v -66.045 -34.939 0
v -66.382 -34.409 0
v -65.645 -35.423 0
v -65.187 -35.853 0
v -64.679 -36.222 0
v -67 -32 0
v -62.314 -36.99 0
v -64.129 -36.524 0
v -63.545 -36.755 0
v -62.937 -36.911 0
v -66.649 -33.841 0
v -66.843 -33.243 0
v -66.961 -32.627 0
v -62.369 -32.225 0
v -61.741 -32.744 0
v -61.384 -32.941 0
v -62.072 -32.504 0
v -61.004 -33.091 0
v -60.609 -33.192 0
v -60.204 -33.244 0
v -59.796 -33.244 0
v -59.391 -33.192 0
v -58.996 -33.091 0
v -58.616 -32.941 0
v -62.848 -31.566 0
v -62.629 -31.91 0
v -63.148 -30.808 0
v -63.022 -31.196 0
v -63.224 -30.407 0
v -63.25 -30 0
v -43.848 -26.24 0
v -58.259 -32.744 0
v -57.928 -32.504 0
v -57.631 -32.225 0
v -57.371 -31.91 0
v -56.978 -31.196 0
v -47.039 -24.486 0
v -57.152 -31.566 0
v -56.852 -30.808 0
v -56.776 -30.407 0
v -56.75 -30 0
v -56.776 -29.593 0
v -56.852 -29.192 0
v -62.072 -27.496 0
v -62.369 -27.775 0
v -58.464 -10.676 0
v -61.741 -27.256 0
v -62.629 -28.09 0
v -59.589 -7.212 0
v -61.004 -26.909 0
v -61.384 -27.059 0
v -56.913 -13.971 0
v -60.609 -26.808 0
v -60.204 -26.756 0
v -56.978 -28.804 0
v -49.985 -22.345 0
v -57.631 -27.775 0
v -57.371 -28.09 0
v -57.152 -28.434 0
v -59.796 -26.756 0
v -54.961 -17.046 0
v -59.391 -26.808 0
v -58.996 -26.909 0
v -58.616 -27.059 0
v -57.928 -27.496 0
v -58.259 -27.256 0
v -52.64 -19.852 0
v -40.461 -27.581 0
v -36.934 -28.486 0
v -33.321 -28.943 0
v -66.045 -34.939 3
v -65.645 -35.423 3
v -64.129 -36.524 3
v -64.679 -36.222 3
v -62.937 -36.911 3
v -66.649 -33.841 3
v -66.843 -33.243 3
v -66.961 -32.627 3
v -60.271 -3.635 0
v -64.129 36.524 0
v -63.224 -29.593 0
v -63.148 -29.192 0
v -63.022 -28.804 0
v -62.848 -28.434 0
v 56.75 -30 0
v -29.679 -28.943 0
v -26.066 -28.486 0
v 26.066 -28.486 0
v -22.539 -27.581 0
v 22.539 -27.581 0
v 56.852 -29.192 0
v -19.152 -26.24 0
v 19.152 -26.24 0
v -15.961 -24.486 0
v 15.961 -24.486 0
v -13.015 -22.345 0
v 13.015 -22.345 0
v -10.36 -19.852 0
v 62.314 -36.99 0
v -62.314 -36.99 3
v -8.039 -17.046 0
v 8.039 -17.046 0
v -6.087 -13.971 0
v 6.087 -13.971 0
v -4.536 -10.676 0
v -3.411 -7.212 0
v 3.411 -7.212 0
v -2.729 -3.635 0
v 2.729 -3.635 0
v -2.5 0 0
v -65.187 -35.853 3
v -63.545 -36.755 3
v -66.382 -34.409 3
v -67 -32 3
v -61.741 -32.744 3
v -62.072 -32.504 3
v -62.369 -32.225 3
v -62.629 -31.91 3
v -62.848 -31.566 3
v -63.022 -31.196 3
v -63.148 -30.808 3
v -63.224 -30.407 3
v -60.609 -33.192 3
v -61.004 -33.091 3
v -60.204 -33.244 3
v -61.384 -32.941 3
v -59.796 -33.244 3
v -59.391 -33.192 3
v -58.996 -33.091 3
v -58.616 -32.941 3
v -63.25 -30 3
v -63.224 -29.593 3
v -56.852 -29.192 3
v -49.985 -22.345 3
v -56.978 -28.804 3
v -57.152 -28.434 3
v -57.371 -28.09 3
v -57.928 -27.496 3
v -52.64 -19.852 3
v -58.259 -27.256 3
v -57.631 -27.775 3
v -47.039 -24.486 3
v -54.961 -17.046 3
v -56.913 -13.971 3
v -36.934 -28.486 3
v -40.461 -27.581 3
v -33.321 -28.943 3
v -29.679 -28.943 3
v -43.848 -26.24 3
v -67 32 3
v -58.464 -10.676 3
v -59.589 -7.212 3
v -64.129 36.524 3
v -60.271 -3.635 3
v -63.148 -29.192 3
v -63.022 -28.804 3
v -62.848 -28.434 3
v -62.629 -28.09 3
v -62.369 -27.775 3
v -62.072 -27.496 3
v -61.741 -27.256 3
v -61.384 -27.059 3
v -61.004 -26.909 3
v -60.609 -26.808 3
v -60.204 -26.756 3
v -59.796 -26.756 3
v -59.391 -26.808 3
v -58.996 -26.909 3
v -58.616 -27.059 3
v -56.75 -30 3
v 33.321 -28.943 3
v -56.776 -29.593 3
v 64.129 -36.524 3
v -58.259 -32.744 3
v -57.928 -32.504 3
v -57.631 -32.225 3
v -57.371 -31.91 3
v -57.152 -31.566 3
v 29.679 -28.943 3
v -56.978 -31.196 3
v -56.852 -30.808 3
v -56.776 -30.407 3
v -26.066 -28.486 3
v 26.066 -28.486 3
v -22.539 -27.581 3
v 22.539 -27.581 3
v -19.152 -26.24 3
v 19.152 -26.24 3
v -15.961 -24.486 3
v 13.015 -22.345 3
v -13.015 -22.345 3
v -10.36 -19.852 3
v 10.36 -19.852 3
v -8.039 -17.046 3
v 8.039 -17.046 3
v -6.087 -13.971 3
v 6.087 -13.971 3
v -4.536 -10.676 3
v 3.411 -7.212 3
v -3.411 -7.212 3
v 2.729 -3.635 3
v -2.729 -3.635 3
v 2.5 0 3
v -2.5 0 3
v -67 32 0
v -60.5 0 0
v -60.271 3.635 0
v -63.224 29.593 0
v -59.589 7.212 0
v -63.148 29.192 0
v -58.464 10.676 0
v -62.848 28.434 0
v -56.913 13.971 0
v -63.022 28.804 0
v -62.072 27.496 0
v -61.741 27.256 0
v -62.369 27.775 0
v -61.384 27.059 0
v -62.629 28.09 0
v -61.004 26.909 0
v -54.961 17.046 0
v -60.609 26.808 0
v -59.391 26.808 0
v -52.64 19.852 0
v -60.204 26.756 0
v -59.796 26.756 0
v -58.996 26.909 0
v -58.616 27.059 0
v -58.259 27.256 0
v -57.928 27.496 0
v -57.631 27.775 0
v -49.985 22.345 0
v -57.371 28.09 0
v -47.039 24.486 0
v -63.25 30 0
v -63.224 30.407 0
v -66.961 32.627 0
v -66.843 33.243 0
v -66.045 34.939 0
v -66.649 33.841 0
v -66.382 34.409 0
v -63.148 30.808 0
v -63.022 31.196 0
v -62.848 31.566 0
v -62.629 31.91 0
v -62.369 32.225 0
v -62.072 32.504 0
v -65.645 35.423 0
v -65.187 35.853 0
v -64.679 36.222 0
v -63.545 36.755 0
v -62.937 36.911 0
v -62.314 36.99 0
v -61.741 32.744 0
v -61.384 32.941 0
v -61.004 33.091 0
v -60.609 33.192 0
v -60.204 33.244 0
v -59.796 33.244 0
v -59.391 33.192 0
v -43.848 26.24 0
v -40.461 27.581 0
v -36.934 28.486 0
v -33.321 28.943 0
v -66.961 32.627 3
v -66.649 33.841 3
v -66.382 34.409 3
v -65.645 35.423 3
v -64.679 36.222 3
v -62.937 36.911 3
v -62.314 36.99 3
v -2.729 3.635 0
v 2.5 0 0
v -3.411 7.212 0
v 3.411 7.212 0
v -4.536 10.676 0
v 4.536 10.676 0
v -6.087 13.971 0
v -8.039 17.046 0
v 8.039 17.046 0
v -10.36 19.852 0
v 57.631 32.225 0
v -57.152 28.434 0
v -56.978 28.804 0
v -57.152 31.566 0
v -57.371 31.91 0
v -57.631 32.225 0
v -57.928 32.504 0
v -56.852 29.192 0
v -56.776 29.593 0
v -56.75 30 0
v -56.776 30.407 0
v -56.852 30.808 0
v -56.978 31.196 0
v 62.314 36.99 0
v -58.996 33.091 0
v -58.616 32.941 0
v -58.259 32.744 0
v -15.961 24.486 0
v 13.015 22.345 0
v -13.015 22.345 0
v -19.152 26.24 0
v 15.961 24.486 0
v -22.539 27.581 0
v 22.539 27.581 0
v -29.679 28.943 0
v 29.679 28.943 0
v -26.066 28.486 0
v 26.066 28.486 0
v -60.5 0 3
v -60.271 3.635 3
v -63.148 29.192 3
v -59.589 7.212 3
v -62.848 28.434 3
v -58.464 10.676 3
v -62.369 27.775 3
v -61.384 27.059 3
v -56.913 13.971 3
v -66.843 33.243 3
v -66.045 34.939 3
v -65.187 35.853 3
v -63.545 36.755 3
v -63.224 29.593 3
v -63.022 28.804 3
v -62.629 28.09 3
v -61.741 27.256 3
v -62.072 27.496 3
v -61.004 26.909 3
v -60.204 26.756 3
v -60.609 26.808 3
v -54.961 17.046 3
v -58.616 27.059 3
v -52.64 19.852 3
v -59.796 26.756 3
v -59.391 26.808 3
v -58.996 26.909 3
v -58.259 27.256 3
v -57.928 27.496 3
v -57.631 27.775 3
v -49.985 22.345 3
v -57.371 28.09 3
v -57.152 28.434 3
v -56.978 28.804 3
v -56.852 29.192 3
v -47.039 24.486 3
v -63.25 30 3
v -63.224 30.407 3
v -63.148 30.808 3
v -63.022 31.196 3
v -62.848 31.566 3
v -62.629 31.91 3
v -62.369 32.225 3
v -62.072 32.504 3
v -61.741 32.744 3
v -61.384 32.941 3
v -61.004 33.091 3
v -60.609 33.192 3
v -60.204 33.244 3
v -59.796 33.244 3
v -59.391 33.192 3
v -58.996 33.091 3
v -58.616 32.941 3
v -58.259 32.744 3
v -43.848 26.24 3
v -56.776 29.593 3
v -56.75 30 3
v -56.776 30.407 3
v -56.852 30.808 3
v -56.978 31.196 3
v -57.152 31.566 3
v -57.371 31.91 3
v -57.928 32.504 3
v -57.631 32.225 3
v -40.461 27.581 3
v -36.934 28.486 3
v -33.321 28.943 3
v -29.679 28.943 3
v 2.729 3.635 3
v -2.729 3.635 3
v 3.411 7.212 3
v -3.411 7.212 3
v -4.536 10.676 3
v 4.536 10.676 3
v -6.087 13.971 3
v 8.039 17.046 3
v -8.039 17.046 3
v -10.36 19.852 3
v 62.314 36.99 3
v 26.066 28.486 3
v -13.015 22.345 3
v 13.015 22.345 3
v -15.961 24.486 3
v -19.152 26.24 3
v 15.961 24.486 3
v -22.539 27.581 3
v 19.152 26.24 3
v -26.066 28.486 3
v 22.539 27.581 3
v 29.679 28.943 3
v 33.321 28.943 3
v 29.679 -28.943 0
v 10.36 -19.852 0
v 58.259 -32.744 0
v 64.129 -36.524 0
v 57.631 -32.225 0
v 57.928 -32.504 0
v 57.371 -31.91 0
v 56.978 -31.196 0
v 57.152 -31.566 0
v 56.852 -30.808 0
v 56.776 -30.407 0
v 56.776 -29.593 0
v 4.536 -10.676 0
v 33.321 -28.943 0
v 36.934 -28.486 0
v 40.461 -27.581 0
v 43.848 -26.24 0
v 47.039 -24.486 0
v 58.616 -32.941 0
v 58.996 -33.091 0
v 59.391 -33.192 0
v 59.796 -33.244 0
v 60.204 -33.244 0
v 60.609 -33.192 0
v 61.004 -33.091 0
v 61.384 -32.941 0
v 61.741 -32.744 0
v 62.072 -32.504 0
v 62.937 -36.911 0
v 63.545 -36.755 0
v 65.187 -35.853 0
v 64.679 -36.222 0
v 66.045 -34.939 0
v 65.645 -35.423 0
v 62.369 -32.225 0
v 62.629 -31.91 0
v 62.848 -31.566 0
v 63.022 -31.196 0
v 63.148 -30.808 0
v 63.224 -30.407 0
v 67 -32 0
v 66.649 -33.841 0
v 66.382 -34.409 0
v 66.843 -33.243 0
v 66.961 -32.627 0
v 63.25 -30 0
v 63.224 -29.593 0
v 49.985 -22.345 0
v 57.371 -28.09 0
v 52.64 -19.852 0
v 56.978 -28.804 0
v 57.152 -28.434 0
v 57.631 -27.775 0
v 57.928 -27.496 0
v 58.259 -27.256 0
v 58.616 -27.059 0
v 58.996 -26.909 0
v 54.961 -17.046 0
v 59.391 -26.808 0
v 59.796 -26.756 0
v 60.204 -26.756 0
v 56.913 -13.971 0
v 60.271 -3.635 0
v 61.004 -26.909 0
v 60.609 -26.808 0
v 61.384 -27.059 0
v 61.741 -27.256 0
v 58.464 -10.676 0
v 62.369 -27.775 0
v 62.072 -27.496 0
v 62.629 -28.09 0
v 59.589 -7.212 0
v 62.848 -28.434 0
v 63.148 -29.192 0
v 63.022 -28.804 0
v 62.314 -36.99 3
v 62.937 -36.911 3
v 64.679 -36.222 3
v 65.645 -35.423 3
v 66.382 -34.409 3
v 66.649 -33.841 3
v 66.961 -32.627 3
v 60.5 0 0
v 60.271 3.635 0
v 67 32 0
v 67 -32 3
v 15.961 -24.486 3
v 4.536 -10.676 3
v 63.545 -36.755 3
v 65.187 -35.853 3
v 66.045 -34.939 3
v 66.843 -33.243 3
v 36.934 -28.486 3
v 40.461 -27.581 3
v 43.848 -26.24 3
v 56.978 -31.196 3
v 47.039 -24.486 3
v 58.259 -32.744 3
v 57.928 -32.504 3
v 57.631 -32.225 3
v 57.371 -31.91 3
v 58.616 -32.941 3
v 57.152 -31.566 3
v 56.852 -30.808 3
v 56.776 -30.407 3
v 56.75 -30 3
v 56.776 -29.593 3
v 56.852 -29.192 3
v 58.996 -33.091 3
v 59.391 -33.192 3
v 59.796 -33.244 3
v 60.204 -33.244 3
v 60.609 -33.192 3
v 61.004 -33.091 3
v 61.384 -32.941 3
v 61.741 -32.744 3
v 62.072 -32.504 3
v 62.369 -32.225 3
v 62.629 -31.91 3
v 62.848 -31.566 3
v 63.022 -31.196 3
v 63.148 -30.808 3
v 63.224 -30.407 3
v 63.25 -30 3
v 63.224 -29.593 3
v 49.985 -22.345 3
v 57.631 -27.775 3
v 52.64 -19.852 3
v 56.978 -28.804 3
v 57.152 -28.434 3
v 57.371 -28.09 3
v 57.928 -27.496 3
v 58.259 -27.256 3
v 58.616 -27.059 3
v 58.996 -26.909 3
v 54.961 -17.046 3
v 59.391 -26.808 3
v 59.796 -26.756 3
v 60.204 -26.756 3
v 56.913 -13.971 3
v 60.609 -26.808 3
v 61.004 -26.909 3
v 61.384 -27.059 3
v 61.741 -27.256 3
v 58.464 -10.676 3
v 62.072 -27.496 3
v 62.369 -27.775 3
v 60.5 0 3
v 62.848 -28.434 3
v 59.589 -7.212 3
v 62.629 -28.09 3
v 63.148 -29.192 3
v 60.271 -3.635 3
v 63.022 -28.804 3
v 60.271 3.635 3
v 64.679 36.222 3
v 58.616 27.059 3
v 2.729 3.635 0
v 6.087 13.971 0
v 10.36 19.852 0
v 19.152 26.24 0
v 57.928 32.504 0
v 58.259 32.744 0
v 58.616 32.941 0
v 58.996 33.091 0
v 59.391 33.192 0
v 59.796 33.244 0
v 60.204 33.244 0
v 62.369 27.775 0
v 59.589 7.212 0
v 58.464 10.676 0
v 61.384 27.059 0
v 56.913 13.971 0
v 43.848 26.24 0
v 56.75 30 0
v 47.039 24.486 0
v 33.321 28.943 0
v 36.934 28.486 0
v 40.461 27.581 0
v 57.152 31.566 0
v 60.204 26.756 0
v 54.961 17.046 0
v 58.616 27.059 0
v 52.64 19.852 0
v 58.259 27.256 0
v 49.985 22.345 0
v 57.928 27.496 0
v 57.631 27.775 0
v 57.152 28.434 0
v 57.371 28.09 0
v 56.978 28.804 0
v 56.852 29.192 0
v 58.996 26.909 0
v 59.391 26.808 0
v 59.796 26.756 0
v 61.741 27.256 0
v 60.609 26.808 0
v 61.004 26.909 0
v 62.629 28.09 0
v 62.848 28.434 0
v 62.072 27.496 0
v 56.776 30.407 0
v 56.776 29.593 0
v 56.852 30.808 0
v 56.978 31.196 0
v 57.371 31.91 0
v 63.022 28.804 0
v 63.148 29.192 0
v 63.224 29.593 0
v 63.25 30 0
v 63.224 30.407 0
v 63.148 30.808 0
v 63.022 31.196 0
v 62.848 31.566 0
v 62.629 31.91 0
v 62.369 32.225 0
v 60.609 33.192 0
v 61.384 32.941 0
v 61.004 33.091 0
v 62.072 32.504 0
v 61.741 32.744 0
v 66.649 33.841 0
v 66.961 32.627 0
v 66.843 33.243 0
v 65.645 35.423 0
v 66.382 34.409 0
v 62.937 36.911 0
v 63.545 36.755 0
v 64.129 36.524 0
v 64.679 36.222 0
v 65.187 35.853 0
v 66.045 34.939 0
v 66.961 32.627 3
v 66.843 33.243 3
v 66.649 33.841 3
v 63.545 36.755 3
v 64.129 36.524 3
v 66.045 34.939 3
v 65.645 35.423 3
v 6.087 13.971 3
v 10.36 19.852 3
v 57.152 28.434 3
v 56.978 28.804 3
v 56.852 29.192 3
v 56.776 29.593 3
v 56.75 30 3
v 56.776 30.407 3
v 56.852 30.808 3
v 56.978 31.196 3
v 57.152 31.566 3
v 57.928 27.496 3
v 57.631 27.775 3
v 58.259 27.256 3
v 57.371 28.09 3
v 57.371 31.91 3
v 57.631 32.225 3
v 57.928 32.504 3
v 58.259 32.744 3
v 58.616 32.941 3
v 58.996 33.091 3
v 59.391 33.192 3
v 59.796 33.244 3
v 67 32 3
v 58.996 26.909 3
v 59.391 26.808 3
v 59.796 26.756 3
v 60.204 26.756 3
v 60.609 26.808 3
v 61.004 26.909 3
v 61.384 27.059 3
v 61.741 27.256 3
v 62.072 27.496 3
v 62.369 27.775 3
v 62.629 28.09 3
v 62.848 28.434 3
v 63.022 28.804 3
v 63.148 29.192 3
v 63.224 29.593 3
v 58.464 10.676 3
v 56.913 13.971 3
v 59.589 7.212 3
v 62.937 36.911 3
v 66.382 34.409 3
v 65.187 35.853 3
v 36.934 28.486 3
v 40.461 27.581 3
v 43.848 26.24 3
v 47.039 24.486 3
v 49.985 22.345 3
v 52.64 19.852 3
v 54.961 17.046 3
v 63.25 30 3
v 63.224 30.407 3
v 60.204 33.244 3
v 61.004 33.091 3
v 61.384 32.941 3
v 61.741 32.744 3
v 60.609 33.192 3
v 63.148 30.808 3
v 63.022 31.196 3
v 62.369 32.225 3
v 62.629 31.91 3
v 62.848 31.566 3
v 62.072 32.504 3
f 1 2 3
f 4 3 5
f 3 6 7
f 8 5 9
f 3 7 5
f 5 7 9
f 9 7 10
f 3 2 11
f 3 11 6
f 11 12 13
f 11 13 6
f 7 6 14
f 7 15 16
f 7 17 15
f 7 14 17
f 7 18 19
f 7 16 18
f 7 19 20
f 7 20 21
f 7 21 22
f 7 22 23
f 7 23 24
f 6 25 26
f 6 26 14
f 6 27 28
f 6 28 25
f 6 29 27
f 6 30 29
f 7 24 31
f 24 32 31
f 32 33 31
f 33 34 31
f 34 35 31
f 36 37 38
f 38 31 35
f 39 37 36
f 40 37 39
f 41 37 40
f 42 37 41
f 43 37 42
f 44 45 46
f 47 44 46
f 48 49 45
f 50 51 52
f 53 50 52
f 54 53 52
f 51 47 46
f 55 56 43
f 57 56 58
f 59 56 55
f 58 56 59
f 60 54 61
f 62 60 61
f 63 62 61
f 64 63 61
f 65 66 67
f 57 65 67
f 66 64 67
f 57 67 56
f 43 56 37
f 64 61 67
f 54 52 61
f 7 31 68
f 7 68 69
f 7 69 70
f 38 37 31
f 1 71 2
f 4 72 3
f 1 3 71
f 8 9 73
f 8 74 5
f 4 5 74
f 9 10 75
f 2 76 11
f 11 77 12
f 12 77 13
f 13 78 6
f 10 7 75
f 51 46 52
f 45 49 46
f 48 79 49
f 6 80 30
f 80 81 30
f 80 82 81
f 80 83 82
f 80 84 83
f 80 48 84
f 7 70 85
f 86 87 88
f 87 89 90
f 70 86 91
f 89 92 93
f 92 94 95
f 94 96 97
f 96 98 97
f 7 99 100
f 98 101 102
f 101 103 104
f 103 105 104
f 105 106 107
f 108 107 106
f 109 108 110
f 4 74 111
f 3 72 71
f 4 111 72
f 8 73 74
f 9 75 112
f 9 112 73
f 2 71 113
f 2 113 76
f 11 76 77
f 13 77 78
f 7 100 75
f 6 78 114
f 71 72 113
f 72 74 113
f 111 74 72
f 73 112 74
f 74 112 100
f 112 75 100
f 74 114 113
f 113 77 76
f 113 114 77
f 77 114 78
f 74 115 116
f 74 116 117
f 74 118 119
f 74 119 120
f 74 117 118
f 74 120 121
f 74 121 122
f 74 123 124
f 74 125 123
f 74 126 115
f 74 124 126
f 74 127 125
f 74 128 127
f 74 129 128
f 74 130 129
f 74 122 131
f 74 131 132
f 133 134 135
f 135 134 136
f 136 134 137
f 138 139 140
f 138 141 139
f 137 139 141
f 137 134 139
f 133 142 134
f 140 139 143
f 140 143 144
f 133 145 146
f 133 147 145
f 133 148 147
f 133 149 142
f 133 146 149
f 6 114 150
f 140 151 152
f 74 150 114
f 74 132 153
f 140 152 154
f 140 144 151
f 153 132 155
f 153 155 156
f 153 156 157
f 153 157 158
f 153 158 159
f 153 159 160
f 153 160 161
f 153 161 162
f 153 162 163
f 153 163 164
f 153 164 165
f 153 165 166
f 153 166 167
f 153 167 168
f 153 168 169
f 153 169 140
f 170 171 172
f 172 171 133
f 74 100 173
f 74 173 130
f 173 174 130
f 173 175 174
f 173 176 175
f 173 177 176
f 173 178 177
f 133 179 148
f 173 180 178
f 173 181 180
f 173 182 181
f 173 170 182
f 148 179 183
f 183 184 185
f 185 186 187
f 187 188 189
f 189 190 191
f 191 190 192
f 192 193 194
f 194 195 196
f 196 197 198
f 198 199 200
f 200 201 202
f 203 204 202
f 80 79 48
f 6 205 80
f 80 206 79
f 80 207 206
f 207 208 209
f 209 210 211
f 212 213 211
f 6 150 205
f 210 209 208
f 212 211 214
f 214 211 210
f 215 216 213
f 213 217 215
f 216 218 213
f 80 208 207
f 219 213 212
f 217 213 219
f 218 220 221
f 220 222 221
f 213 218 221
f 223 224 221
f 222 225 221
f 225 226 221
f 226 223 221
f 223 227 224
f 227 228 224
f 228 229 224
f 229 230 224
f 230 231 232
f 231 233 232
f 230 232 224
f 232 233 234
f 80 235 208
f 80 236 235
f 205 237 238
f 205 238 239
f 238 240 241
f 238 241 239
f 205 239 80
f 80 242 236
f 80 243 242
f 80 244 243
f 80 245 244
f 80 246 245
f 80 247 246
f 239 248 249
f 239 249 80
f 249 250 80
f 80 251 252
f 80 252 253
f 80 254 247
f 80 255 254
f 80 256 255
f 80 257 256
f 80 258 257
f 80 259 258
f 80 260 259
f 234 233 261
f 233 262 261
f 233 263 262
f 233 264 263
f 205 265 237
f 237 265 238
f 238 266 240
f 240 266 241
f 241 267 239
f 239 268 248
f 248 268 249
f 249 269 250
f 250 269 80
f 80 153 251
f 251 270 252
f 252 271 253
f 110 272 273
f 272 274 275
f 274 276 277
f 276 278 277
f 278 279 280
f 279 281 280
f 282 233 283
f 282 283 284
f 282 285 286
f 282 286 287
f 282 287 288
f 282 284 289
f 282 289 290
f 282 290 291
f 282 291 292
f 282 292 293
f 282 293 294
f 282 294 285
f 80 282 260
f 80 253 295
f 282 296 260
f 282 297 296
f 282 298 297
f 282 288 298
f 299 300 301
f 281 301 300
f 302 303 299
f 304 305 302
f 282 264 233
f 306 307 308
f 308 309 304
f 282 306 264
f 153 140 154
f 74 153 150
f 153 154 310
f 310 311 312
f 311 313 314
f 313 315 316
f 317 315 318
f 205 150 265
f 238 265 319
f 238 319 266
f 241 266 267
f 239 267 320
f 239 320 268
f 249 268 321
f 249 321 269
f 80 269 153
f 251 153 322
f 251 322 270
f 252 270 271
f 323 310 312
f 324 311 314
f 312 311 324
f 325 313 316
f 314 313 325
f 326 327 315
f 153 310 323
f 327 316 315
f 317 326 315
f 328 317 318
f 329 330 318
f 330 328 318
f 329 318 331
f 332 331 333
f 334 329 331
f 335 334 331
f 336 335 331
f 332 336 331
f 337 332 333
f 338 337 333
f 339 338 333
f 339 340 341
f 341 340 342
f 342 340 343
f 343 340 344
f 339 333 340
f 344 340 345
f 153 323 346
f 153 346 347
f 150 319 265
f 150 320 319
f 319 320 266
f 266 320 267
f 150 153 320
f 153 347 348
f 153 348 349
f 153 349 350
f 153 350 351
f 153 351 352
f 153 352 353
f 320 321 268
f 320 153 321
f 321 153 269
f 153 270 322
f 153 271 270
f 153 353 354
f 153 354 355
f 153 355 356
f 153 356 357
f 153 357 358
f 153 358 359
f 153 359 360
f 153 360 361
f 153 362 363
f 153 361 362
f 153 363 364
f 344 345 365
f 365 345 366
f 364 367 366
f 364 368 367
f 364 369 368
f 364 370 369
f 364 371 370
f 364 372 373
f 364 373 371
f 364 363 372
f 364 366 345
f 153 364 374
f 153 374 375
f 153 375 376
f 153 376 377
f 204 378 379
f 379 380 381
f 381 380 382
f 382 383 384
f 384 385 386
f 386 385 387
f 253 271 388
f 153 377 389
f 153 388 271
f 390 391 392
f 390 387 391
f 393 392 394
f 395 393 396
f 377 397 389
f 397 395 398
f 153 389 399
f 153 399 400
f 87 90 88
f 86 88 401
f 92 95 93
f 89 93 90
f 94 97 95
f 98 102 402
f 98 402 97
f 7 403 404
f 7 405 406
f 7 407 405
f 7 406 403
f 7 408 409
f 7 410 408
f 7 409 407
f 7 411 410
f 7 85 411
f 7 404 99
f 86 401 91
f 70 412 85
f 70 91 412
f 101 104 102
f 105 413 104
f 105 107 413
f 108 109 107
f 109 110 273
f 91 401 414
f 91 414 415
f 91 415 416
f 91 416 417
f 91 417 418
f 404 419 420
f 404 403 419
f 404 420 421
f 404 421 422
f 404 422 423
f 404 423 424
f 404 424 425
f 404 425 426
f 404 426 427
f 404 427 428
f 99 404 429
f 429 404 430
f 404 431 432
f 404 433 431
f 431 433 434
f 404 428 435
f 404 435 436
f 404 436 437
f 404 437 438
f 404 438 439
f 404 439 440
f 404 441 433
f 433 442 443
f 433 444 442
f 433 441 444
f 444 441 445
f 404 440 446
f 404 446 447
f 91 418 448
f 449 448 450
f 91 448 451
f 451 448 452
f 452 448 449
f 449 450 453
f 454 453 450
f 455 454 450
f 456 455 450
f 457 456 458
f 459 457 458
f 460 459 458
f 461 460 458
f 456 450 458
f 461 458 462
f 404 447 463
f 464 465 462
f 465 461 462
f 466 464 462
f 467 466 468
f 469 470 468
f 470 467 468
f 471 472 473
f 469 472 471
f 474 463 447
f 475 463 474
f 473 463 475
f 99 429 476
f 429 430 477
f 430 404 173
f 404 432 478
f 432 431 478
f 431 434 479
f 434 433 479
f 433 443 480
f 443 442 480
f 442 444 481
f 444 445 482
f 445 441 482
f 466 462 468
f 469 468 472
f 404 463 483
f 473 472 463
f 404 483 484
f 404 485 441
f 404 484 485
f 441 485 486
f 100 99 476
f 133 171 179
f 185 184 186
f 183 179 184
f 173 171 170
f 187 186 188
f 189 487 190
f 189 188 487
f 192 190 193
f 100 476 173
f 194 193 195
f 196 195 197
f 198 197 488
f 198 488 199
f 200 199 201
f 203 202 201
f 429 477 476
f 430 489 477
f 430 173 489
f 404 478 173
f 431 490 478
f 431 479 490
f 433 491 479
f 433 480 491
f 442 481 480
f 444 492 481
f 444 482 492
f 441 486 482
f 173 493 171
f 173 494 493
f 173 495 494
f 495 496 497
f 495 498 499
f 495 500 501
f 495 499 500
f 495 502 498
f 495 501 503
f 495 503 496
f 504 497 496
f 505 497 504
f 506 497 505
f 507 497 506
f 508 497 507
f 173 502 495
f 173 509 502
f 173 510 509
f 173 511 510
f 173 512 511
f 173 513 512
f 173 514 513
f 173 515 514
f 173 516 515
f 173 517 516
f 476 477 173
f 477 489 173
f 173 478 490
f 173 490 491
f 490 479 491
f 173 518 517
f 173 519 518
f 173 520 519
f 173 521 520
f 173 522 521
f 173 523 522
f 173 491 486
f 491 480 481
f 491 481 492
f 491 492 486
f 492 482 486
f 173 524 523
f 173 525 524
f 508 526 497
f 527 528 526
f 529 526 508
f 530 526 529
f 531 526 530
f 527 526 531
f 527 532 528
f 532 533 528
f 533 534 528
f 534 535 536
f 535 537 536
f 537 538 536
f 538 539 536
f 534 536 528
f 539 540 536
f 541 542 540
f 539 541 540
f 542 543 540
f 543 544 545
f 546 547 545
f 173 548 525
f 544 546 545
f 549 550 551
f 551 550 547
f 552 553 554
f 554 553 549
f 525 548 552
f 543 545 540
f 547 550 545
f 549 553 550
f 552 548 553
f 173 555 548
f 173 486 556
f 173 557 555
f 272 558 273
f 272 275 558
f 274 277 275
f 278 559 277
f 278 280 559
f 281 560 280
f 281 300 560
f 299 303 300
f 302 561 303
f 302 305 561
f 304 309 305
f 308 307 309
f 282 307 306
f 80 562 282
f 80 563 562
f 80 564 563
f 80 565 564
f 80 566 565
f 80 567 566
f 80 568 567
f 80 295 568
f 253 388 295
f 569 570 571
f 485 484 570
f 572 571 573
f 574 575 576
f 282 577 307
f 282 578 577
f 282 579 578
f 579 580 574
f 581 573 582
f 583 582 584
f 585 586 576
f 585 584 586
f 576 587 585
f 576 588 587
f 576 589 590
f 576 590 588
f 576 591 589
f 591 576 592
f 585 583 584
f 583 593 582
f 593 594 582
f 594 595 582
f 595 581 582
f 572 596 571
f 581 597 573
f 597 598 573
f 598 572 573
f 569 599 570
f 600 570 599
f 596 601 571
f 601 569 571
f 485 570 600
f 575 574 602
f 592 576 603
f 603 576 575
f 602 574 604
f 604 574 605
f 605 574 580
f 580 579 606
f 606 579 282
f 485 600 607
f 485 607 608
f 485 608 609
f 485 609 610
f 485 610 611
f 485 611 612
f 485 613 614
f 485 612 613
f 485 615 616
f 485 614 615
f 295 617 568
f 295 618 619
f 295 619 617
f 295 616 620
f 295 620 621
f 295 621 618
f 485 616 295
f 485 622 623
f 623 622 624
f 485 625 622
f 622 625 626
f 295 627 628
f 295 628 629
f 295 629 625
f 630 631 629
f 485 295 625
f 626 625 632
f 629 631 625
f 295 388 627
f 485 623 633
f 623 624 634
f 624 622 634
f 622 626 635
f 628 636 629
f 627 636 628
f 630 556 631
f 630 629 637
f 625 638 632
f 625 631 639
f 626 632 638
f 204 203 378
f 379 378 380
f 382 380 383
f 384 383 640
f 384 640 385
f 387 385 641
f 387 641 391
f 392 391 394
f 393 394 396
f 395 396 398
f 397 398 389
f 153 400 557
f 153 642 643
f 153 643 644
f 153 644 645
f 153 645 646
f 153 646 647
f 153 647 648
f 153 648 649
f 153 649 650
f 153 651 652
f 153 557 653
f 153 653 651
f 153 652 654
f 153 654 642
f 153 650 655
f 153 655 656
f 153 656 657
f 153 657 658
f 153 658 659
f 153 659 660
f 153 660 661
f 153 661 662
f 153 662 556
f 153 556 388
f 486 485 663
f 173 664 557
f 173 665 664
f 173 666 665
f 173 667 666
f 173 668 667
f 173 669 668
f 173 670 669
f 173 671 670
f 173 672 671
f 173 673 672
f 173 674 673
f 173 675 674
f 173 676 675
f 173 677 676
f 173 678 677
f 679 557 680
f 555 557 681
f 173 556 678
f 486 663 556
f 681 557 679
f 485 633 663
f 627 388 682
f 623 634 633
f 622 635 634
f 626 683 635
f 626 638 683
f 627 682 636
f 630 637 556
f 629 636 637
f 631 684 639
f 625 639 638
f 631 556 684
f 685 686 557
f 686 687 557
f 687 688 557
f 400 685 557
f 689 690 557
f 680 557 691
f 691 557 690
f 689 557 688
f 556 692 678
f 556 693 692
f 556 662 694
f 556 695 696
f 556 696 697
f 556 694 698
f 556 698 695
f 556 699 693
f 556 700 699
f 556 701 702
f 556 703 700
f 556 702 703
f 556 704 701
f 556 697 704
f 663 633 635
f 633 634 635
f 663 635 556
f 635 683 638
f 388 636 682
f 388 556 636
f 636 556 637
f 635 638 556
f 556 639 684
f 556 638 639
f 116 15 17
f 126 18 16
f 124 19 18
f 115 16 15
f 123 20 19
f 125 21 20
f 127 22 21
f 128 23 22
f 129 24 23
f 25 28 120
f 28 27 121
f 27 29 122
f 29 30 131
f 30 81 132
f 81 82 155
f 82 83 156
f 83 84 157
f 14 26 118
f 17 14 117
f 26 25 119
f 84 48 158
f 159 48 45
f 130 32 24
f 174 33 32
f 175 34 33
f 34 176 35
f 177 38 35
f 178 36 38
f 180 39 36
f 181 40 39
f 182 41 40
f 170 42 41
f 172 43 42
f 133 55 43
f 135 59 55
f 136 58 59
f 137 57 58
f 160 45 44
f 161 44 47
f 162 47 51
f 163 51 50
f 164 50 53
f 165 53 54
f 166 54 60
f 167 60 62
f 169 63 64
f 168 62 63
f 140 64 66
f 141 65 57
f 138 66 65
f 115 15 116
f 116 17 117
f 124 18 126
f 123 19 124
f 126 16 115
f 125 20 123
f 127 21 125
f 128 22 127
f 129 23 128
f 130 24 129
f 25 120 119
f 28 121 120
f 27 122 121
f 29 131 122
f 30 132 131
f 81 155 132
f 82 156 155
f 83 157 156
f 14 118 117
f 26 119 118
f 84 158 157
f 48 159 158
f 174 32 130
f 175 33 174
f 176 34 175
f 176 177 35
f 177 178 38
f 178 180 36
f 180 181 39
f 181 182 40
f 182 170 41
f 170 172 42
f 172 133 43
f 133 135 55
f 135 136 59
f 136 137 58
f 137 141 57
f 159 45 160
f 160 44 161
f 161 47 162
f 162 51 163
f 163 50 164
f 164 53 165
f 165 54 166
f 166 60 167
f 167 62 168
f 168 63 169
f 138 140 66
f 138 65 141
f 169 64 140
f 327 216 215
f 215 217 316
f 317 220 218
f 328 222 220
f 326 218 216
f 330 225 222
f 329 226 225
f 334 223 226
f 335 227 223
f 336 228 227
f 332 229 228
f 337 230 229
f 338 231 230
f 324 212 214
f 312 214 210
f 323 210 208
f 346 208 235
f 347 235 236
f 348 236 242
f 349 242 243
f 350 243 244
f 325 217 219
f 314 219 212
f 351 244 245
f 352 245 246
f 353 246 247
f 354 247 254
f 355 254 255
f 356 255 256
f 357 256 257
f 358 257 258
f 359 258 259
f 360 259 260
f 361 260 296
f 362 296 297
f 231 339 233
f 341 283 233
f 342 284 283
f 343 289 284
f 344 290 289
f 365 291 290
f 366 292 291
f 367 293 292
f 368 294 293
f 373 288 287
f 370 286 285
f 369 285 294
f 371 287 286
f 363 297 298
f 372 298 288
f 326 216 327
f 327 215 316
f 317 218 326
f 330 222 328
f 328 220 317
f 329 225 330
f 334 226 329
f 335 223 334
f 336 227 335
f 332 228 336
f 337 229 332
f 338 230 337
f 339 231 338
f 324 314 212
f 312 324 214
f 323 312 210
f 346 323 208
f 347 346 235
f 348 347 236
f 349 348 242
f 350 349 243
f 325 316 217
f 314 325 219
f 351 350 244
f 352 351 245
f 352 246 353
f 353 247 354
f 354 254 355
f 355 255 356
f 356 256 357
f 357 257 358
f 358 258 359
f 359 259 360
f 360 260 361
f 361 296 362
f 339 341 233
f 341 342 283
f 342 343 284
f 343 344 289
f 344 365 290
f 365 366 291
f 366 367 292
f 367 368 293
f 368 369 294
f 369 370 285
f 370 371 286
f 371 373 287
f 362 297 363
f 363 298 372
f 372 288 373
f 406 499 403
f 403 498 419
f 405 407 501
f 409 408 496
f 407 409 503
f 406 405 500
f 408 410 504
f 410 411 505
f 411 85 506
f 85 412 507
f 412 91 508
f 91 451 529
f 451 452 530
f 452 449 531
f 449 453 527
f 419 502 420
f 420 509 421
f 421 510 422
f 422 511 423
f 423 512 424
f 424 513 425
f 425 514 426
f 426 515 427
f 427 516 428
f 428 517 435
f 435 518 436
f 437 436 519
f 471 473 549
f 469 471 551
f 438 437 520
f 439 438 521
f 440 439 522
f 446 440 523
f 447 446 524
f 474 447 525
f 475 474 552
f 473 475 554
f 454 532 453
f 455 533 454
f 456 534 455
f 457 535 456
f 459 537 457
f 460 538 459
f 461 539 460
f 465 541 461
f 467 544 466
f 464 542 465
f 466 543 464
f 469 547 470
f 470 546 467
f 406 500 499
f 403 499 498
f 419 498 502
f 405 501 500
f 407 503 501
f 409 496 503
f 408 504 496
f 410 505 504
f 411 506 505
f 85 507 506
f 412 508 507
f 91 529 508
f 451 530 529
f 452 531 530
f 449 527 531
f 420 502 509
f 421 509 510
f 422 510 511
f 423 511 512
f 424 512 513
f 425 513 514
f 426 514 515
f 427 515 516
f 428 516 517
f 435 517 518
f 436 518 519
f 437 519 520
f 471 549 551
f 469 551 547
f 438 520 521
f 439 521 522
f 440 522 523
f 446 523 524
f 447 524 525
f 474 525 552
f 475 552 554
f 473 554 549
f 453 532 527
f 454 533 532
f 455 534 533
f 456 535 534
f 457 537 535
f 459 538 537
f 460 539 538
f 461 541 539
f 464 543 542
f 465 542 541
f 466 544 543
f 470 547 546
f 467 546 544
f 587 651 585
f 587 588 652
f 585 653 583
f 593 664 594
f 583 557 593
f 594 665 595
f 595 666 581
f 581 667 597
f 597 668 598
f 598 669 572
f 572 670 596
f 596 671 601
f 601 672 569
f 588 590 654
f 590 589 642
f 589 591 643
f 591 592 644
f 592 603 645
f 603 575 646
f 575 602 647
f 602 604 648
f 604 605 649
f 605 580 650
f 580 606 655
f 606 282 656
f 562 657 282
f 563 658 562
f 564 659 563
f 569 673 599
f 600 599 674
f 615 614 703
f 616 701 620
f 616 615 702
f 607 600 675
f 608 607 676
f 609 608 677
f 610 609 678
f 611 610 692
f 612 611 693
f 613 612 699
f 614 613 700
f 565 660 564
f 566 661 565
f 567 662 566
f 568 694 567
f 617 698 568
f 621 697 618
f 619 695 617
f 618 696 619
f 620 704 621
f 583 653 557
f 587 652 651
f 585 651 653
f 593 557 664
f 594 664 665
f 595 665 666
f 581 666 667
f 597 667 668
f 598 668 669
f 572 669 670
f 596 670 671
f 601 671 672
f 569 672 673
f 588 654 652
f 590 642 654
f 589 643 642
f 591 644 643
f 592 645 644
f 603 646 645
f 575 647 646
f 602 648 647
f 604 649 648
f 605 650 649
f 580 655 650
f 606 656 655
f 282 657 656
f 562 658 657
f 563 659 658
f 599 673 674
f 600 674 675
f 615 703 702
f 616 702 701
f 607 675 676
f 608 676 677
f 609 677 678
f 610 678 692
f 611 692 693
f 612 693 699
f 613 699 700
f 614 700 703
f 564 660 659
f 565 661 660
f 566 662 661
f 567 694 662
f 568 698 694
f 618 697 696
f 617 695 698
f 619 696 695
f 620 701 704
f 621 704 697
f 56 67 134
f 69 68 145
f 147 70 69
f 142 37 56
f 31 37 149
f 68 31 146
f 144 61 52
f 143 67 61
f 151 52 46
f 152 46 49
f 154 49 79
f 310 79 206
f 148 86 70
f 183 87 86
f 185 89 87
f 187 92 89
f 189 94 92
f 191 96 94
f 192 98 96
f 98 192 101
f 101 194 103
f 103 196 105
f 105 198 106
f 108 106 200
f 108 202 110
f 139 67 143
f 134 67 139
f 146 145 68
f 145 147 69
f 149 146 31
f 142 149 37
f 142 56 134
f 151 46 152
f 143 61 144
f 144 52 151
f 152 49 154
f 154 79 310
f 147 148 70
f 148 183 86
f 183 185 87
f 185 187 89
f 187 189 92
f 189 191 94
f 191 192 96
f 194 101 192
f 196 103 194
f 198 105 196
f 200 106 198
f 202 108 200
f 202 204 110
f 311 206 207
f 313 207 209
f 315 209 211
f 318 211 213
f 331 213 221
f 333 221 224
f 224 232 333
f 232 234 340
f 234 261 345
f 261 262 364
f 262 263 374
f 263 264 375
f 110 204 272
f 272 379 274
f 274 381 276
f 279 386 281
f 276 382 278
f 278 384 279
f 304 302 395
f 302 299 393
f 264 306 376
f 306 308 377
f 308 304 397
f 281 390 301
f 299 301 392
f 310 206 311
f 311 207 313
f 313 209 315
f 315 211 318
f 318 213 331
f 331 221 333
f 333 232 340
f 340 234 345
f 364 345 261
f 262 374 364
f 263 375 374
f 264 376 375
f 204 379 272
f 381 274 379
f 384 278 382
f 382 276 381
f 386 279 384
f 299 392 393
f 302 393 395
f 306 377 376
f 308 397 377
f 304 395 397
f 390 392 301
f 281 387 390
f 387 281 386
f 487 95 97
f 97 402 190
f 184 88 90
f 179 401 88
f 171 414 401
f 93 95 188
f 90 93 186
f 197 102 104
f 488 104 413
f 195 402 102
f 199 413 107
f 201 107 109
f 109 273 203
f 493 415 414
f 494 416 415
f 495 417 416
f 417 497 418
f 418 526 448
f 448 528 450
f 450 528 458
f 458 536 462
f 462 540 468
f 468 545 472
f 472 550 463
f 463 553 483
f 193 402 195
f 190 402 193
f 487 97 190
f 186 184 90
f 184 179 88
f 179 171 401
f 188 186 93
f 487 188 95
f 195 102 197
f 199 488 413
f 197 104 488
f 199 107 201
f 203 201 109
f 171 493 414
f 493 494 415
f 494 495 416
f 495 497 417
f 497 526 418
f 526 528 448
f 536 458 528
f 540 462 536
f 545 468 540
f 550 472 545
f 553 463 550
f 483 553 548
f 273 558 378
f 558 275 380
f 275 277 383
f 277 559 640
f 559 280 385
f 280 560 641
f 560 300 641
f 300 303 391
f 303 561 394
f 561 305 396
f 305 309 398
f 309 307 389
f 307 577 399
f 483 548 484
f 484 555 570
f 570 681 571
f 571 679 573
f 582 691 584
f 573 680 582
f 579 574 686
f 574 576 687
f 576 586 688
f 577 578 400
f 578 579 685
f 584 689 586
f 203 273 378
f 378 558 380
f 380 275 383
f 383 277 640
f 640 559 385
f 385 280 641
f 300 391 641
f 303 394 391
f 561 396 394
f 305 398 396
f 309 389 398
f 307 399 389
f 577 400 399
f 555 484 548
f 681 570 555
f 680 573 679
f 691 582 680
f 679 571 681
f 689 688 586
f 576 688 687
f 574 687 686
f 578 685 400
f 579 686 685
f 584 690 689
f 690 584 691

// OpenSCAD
$fn = 50;

difference() {
	union() {
		hull() {
			translate(v = [-62.0, 32.0, 0]) {
				cylinder(h = 3, r = 5);
			}
			translate(v = [62.0, 32.0, 0]) {
				cylinder(h = 3, r = 5);
			}
			translate(v = [-62.0, -32.0, 0]) {
				cylinder(h = 3, r = 5);
			}
			translate(v = [62.0, -32.0, 0]) {
				cylinder(h = 3, r = 5);
			}
		}
	}
	union() {
		translate(v = [-60.0, -30.0, -100.0]) {
			cylinder(h = 200, r = 3.25);
		}
		translate(v = [-60.0, 30.0, -100.0]) {
			cylinder(h = 200, r = 3.25);
		}
		translate(v = [60.0, -30.0, -100.0]) {
			cylinder(h = 200, r = 3.25);
		}
		translate(v = [60.0, 30.0, -100.0]) {
			cylinder(h = 200, r = 3.25);
		}
		translate(v = [-60.0, -30.0, -100.0]) {
			cylinder(h = 200, r = 1.8);
		}
		translate(v = [-60.0, 30.0, -100.0]) {
			cylinder(h = 200, r = 1.8);
		}
		translate(v = [60.0, -30.0, -100.0]) {
			cylinder(h = 200, r = 1.8);
		}
		translate(v = [60.0, 30.0, -100.0]) {
			cylinder(h = 200, r = 1.8);
		}
		translate(v = [-31.5, 0, 0.0]) {
			cylinder(h = 3, r = 29.0);
		}
		translate(v = [31.5, 0, 0.0]) {
			cylinder(h = 3, r = 29.0);
		}
	}
}
